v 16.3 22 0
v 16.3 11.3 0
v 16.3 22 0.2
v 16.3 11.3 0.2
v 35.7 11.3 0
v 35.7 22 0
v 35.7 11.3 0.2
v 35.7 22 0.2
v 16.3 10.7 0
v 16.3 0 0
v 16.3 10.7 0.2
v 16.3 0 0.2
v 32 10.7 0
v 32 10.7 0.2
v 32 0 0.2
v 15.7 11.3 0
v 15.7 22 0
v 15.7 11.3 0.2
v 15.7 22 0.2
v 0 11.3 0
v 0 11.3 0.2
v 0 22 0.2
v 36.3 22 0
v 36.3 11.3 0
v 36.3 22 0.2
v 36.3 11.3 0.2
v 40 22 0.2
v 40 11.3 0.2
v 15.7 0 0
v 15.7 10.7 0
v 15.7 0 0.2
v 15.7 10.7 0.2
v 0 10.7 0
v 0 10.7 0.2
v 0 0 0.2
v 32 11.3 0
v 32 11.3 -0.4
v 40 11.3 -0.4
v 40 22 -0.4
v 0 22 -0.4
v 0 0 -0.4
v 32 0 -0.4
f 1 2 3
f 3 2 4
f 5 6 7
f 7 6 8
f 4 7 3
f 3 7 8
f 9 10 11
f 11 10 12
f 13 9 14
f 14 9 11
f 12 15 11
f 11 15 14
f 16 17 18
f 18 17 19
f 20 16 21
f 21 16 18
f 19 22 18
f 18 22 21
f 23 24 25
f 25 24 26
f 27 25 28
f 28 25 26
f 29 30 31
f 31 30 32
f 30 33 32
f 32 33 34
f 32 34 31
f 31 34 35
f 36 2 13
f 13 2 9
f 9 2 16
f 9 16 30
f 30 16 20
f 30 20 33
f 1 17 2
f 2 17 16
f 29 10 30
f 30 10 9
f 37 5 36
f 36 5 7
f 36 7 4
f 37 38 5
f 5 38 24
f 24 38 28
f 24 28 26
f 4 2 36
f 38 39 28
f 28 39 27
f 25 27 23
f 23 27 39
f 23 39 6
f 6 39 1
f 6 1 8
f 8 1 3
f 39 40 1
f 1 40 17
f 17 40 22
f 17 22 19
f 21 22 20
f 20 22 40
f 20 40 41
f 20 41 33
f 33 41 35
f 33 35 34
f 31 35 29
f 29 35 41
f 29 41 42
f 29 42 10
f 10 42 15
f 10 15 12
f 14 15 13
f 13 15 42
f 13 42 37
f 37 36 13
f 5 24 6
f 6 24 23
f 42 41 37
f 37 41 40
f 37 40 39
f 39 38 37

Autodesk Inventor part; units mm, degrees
ref_plane "YZ Plane" through (0, 0, 0) normal (1, 0, 0) x (0, 1, 0)
ref_plane "XZ Plane" through (0, 0, 0) normal (0, 1, 0) x (-1, 0, 0)
ref_plane "XY Plane" through (0, 0, 0) normal (0, 0, 1) x (1, 0, 0)
sketch "Sketch1" plane through (0, 0, 0) normal (0, 0, 1) x (1, 0, 0)
  line L0 (0, 0) -> (32, 0)
  line L1 (32, 0) -> (32, 22)
  line L2 (32, 22) -> (0, 22)
  line L3 (0, 22) -> (0, 0)
  line L4 (0, 11) -> (0, 10.7)
  line L5 (0, 10.7) -> (0, 11.3)
  line L6 (32, 16.3) -> (32, 15.7)
  line L7 (0, 15.7) -> (0, 11.3)
  line L8 (16.3, 22) -> (15.7, 22)
  line L9 (15.7, 22) -> (16.3, 22)
  line L10 (16.3, 0) -> (15.7, 0)
  line L11 (32, 11) -> (32, 11.3)
  line L12 (0, 11.3) -> (0, 10.7)
  line L13 (32, 10.7) -> (32, 11.3)
  line L14 (16.3, 22) -> (15.7, 22)
  line L15 (15.7, 0) -> (16.3, 0)
  line L16 (0, 10.7) -> (15.7, 10.7)
  line L17 (16.3, 10.7) -> (32, 10.7)
  line L18 (16.3, 0) -> (16.3, 10.7)
  line L19 (16.3, 11.3) -> (16.3, 22)
  line L20 (32, 11.3) -> (16.3, 11.3)
  line L21 (15.7, 11.3) -> (0, 11.3)
  line L22 (15.7, 22) -> (15.7, 11.3)
  line L23 (15.7, 10.7) -> (15.7, 0)
  line L24 (32, 11.3) -> (40, 11.3)
  line L25 (40, 11.3) -> (40, 22)
  line L26 (40, 22) -> (32, 22)
  line L27 (32, 22) -> (32, 11.3)
  line L28 (36, 22) -> (36.3, 22)
  line L29 (36.3, 22) -> (35.7, 22)
  line L30 (35.7, 22) -> (35.7, 11.3)
  line L31 (35.7, 11.3) -> (36.3, 11.3)
  line L32 (36.3, 11.3) -> (36.3, 22)
  point P0 (36.3, 16.3)
  dimension "d1" = 22
  dimension "d6" = 0.6
  dimension "d14" = 0.3
  dimension "d15" = 0.6
  dimension "d16" = 0.6
  dimension "d17" = 8
  dimension "d18" = 0.3
  dimension "d19" = 0.6
extrude "Extrusion1" add sketch "Sketch1" against normal blind 0.4
extrude "Extrusion2" add sketch "Sketch1" along normal blind 0.2 contours L3 L16 L23 L0 | L18 L17 L1 L0 | L3 L2 L22 L21 | L20 L19 L2 L1 | L1 L26 L30 L24 | L32 L26 L25 L24
properties part number "Wire Position"
